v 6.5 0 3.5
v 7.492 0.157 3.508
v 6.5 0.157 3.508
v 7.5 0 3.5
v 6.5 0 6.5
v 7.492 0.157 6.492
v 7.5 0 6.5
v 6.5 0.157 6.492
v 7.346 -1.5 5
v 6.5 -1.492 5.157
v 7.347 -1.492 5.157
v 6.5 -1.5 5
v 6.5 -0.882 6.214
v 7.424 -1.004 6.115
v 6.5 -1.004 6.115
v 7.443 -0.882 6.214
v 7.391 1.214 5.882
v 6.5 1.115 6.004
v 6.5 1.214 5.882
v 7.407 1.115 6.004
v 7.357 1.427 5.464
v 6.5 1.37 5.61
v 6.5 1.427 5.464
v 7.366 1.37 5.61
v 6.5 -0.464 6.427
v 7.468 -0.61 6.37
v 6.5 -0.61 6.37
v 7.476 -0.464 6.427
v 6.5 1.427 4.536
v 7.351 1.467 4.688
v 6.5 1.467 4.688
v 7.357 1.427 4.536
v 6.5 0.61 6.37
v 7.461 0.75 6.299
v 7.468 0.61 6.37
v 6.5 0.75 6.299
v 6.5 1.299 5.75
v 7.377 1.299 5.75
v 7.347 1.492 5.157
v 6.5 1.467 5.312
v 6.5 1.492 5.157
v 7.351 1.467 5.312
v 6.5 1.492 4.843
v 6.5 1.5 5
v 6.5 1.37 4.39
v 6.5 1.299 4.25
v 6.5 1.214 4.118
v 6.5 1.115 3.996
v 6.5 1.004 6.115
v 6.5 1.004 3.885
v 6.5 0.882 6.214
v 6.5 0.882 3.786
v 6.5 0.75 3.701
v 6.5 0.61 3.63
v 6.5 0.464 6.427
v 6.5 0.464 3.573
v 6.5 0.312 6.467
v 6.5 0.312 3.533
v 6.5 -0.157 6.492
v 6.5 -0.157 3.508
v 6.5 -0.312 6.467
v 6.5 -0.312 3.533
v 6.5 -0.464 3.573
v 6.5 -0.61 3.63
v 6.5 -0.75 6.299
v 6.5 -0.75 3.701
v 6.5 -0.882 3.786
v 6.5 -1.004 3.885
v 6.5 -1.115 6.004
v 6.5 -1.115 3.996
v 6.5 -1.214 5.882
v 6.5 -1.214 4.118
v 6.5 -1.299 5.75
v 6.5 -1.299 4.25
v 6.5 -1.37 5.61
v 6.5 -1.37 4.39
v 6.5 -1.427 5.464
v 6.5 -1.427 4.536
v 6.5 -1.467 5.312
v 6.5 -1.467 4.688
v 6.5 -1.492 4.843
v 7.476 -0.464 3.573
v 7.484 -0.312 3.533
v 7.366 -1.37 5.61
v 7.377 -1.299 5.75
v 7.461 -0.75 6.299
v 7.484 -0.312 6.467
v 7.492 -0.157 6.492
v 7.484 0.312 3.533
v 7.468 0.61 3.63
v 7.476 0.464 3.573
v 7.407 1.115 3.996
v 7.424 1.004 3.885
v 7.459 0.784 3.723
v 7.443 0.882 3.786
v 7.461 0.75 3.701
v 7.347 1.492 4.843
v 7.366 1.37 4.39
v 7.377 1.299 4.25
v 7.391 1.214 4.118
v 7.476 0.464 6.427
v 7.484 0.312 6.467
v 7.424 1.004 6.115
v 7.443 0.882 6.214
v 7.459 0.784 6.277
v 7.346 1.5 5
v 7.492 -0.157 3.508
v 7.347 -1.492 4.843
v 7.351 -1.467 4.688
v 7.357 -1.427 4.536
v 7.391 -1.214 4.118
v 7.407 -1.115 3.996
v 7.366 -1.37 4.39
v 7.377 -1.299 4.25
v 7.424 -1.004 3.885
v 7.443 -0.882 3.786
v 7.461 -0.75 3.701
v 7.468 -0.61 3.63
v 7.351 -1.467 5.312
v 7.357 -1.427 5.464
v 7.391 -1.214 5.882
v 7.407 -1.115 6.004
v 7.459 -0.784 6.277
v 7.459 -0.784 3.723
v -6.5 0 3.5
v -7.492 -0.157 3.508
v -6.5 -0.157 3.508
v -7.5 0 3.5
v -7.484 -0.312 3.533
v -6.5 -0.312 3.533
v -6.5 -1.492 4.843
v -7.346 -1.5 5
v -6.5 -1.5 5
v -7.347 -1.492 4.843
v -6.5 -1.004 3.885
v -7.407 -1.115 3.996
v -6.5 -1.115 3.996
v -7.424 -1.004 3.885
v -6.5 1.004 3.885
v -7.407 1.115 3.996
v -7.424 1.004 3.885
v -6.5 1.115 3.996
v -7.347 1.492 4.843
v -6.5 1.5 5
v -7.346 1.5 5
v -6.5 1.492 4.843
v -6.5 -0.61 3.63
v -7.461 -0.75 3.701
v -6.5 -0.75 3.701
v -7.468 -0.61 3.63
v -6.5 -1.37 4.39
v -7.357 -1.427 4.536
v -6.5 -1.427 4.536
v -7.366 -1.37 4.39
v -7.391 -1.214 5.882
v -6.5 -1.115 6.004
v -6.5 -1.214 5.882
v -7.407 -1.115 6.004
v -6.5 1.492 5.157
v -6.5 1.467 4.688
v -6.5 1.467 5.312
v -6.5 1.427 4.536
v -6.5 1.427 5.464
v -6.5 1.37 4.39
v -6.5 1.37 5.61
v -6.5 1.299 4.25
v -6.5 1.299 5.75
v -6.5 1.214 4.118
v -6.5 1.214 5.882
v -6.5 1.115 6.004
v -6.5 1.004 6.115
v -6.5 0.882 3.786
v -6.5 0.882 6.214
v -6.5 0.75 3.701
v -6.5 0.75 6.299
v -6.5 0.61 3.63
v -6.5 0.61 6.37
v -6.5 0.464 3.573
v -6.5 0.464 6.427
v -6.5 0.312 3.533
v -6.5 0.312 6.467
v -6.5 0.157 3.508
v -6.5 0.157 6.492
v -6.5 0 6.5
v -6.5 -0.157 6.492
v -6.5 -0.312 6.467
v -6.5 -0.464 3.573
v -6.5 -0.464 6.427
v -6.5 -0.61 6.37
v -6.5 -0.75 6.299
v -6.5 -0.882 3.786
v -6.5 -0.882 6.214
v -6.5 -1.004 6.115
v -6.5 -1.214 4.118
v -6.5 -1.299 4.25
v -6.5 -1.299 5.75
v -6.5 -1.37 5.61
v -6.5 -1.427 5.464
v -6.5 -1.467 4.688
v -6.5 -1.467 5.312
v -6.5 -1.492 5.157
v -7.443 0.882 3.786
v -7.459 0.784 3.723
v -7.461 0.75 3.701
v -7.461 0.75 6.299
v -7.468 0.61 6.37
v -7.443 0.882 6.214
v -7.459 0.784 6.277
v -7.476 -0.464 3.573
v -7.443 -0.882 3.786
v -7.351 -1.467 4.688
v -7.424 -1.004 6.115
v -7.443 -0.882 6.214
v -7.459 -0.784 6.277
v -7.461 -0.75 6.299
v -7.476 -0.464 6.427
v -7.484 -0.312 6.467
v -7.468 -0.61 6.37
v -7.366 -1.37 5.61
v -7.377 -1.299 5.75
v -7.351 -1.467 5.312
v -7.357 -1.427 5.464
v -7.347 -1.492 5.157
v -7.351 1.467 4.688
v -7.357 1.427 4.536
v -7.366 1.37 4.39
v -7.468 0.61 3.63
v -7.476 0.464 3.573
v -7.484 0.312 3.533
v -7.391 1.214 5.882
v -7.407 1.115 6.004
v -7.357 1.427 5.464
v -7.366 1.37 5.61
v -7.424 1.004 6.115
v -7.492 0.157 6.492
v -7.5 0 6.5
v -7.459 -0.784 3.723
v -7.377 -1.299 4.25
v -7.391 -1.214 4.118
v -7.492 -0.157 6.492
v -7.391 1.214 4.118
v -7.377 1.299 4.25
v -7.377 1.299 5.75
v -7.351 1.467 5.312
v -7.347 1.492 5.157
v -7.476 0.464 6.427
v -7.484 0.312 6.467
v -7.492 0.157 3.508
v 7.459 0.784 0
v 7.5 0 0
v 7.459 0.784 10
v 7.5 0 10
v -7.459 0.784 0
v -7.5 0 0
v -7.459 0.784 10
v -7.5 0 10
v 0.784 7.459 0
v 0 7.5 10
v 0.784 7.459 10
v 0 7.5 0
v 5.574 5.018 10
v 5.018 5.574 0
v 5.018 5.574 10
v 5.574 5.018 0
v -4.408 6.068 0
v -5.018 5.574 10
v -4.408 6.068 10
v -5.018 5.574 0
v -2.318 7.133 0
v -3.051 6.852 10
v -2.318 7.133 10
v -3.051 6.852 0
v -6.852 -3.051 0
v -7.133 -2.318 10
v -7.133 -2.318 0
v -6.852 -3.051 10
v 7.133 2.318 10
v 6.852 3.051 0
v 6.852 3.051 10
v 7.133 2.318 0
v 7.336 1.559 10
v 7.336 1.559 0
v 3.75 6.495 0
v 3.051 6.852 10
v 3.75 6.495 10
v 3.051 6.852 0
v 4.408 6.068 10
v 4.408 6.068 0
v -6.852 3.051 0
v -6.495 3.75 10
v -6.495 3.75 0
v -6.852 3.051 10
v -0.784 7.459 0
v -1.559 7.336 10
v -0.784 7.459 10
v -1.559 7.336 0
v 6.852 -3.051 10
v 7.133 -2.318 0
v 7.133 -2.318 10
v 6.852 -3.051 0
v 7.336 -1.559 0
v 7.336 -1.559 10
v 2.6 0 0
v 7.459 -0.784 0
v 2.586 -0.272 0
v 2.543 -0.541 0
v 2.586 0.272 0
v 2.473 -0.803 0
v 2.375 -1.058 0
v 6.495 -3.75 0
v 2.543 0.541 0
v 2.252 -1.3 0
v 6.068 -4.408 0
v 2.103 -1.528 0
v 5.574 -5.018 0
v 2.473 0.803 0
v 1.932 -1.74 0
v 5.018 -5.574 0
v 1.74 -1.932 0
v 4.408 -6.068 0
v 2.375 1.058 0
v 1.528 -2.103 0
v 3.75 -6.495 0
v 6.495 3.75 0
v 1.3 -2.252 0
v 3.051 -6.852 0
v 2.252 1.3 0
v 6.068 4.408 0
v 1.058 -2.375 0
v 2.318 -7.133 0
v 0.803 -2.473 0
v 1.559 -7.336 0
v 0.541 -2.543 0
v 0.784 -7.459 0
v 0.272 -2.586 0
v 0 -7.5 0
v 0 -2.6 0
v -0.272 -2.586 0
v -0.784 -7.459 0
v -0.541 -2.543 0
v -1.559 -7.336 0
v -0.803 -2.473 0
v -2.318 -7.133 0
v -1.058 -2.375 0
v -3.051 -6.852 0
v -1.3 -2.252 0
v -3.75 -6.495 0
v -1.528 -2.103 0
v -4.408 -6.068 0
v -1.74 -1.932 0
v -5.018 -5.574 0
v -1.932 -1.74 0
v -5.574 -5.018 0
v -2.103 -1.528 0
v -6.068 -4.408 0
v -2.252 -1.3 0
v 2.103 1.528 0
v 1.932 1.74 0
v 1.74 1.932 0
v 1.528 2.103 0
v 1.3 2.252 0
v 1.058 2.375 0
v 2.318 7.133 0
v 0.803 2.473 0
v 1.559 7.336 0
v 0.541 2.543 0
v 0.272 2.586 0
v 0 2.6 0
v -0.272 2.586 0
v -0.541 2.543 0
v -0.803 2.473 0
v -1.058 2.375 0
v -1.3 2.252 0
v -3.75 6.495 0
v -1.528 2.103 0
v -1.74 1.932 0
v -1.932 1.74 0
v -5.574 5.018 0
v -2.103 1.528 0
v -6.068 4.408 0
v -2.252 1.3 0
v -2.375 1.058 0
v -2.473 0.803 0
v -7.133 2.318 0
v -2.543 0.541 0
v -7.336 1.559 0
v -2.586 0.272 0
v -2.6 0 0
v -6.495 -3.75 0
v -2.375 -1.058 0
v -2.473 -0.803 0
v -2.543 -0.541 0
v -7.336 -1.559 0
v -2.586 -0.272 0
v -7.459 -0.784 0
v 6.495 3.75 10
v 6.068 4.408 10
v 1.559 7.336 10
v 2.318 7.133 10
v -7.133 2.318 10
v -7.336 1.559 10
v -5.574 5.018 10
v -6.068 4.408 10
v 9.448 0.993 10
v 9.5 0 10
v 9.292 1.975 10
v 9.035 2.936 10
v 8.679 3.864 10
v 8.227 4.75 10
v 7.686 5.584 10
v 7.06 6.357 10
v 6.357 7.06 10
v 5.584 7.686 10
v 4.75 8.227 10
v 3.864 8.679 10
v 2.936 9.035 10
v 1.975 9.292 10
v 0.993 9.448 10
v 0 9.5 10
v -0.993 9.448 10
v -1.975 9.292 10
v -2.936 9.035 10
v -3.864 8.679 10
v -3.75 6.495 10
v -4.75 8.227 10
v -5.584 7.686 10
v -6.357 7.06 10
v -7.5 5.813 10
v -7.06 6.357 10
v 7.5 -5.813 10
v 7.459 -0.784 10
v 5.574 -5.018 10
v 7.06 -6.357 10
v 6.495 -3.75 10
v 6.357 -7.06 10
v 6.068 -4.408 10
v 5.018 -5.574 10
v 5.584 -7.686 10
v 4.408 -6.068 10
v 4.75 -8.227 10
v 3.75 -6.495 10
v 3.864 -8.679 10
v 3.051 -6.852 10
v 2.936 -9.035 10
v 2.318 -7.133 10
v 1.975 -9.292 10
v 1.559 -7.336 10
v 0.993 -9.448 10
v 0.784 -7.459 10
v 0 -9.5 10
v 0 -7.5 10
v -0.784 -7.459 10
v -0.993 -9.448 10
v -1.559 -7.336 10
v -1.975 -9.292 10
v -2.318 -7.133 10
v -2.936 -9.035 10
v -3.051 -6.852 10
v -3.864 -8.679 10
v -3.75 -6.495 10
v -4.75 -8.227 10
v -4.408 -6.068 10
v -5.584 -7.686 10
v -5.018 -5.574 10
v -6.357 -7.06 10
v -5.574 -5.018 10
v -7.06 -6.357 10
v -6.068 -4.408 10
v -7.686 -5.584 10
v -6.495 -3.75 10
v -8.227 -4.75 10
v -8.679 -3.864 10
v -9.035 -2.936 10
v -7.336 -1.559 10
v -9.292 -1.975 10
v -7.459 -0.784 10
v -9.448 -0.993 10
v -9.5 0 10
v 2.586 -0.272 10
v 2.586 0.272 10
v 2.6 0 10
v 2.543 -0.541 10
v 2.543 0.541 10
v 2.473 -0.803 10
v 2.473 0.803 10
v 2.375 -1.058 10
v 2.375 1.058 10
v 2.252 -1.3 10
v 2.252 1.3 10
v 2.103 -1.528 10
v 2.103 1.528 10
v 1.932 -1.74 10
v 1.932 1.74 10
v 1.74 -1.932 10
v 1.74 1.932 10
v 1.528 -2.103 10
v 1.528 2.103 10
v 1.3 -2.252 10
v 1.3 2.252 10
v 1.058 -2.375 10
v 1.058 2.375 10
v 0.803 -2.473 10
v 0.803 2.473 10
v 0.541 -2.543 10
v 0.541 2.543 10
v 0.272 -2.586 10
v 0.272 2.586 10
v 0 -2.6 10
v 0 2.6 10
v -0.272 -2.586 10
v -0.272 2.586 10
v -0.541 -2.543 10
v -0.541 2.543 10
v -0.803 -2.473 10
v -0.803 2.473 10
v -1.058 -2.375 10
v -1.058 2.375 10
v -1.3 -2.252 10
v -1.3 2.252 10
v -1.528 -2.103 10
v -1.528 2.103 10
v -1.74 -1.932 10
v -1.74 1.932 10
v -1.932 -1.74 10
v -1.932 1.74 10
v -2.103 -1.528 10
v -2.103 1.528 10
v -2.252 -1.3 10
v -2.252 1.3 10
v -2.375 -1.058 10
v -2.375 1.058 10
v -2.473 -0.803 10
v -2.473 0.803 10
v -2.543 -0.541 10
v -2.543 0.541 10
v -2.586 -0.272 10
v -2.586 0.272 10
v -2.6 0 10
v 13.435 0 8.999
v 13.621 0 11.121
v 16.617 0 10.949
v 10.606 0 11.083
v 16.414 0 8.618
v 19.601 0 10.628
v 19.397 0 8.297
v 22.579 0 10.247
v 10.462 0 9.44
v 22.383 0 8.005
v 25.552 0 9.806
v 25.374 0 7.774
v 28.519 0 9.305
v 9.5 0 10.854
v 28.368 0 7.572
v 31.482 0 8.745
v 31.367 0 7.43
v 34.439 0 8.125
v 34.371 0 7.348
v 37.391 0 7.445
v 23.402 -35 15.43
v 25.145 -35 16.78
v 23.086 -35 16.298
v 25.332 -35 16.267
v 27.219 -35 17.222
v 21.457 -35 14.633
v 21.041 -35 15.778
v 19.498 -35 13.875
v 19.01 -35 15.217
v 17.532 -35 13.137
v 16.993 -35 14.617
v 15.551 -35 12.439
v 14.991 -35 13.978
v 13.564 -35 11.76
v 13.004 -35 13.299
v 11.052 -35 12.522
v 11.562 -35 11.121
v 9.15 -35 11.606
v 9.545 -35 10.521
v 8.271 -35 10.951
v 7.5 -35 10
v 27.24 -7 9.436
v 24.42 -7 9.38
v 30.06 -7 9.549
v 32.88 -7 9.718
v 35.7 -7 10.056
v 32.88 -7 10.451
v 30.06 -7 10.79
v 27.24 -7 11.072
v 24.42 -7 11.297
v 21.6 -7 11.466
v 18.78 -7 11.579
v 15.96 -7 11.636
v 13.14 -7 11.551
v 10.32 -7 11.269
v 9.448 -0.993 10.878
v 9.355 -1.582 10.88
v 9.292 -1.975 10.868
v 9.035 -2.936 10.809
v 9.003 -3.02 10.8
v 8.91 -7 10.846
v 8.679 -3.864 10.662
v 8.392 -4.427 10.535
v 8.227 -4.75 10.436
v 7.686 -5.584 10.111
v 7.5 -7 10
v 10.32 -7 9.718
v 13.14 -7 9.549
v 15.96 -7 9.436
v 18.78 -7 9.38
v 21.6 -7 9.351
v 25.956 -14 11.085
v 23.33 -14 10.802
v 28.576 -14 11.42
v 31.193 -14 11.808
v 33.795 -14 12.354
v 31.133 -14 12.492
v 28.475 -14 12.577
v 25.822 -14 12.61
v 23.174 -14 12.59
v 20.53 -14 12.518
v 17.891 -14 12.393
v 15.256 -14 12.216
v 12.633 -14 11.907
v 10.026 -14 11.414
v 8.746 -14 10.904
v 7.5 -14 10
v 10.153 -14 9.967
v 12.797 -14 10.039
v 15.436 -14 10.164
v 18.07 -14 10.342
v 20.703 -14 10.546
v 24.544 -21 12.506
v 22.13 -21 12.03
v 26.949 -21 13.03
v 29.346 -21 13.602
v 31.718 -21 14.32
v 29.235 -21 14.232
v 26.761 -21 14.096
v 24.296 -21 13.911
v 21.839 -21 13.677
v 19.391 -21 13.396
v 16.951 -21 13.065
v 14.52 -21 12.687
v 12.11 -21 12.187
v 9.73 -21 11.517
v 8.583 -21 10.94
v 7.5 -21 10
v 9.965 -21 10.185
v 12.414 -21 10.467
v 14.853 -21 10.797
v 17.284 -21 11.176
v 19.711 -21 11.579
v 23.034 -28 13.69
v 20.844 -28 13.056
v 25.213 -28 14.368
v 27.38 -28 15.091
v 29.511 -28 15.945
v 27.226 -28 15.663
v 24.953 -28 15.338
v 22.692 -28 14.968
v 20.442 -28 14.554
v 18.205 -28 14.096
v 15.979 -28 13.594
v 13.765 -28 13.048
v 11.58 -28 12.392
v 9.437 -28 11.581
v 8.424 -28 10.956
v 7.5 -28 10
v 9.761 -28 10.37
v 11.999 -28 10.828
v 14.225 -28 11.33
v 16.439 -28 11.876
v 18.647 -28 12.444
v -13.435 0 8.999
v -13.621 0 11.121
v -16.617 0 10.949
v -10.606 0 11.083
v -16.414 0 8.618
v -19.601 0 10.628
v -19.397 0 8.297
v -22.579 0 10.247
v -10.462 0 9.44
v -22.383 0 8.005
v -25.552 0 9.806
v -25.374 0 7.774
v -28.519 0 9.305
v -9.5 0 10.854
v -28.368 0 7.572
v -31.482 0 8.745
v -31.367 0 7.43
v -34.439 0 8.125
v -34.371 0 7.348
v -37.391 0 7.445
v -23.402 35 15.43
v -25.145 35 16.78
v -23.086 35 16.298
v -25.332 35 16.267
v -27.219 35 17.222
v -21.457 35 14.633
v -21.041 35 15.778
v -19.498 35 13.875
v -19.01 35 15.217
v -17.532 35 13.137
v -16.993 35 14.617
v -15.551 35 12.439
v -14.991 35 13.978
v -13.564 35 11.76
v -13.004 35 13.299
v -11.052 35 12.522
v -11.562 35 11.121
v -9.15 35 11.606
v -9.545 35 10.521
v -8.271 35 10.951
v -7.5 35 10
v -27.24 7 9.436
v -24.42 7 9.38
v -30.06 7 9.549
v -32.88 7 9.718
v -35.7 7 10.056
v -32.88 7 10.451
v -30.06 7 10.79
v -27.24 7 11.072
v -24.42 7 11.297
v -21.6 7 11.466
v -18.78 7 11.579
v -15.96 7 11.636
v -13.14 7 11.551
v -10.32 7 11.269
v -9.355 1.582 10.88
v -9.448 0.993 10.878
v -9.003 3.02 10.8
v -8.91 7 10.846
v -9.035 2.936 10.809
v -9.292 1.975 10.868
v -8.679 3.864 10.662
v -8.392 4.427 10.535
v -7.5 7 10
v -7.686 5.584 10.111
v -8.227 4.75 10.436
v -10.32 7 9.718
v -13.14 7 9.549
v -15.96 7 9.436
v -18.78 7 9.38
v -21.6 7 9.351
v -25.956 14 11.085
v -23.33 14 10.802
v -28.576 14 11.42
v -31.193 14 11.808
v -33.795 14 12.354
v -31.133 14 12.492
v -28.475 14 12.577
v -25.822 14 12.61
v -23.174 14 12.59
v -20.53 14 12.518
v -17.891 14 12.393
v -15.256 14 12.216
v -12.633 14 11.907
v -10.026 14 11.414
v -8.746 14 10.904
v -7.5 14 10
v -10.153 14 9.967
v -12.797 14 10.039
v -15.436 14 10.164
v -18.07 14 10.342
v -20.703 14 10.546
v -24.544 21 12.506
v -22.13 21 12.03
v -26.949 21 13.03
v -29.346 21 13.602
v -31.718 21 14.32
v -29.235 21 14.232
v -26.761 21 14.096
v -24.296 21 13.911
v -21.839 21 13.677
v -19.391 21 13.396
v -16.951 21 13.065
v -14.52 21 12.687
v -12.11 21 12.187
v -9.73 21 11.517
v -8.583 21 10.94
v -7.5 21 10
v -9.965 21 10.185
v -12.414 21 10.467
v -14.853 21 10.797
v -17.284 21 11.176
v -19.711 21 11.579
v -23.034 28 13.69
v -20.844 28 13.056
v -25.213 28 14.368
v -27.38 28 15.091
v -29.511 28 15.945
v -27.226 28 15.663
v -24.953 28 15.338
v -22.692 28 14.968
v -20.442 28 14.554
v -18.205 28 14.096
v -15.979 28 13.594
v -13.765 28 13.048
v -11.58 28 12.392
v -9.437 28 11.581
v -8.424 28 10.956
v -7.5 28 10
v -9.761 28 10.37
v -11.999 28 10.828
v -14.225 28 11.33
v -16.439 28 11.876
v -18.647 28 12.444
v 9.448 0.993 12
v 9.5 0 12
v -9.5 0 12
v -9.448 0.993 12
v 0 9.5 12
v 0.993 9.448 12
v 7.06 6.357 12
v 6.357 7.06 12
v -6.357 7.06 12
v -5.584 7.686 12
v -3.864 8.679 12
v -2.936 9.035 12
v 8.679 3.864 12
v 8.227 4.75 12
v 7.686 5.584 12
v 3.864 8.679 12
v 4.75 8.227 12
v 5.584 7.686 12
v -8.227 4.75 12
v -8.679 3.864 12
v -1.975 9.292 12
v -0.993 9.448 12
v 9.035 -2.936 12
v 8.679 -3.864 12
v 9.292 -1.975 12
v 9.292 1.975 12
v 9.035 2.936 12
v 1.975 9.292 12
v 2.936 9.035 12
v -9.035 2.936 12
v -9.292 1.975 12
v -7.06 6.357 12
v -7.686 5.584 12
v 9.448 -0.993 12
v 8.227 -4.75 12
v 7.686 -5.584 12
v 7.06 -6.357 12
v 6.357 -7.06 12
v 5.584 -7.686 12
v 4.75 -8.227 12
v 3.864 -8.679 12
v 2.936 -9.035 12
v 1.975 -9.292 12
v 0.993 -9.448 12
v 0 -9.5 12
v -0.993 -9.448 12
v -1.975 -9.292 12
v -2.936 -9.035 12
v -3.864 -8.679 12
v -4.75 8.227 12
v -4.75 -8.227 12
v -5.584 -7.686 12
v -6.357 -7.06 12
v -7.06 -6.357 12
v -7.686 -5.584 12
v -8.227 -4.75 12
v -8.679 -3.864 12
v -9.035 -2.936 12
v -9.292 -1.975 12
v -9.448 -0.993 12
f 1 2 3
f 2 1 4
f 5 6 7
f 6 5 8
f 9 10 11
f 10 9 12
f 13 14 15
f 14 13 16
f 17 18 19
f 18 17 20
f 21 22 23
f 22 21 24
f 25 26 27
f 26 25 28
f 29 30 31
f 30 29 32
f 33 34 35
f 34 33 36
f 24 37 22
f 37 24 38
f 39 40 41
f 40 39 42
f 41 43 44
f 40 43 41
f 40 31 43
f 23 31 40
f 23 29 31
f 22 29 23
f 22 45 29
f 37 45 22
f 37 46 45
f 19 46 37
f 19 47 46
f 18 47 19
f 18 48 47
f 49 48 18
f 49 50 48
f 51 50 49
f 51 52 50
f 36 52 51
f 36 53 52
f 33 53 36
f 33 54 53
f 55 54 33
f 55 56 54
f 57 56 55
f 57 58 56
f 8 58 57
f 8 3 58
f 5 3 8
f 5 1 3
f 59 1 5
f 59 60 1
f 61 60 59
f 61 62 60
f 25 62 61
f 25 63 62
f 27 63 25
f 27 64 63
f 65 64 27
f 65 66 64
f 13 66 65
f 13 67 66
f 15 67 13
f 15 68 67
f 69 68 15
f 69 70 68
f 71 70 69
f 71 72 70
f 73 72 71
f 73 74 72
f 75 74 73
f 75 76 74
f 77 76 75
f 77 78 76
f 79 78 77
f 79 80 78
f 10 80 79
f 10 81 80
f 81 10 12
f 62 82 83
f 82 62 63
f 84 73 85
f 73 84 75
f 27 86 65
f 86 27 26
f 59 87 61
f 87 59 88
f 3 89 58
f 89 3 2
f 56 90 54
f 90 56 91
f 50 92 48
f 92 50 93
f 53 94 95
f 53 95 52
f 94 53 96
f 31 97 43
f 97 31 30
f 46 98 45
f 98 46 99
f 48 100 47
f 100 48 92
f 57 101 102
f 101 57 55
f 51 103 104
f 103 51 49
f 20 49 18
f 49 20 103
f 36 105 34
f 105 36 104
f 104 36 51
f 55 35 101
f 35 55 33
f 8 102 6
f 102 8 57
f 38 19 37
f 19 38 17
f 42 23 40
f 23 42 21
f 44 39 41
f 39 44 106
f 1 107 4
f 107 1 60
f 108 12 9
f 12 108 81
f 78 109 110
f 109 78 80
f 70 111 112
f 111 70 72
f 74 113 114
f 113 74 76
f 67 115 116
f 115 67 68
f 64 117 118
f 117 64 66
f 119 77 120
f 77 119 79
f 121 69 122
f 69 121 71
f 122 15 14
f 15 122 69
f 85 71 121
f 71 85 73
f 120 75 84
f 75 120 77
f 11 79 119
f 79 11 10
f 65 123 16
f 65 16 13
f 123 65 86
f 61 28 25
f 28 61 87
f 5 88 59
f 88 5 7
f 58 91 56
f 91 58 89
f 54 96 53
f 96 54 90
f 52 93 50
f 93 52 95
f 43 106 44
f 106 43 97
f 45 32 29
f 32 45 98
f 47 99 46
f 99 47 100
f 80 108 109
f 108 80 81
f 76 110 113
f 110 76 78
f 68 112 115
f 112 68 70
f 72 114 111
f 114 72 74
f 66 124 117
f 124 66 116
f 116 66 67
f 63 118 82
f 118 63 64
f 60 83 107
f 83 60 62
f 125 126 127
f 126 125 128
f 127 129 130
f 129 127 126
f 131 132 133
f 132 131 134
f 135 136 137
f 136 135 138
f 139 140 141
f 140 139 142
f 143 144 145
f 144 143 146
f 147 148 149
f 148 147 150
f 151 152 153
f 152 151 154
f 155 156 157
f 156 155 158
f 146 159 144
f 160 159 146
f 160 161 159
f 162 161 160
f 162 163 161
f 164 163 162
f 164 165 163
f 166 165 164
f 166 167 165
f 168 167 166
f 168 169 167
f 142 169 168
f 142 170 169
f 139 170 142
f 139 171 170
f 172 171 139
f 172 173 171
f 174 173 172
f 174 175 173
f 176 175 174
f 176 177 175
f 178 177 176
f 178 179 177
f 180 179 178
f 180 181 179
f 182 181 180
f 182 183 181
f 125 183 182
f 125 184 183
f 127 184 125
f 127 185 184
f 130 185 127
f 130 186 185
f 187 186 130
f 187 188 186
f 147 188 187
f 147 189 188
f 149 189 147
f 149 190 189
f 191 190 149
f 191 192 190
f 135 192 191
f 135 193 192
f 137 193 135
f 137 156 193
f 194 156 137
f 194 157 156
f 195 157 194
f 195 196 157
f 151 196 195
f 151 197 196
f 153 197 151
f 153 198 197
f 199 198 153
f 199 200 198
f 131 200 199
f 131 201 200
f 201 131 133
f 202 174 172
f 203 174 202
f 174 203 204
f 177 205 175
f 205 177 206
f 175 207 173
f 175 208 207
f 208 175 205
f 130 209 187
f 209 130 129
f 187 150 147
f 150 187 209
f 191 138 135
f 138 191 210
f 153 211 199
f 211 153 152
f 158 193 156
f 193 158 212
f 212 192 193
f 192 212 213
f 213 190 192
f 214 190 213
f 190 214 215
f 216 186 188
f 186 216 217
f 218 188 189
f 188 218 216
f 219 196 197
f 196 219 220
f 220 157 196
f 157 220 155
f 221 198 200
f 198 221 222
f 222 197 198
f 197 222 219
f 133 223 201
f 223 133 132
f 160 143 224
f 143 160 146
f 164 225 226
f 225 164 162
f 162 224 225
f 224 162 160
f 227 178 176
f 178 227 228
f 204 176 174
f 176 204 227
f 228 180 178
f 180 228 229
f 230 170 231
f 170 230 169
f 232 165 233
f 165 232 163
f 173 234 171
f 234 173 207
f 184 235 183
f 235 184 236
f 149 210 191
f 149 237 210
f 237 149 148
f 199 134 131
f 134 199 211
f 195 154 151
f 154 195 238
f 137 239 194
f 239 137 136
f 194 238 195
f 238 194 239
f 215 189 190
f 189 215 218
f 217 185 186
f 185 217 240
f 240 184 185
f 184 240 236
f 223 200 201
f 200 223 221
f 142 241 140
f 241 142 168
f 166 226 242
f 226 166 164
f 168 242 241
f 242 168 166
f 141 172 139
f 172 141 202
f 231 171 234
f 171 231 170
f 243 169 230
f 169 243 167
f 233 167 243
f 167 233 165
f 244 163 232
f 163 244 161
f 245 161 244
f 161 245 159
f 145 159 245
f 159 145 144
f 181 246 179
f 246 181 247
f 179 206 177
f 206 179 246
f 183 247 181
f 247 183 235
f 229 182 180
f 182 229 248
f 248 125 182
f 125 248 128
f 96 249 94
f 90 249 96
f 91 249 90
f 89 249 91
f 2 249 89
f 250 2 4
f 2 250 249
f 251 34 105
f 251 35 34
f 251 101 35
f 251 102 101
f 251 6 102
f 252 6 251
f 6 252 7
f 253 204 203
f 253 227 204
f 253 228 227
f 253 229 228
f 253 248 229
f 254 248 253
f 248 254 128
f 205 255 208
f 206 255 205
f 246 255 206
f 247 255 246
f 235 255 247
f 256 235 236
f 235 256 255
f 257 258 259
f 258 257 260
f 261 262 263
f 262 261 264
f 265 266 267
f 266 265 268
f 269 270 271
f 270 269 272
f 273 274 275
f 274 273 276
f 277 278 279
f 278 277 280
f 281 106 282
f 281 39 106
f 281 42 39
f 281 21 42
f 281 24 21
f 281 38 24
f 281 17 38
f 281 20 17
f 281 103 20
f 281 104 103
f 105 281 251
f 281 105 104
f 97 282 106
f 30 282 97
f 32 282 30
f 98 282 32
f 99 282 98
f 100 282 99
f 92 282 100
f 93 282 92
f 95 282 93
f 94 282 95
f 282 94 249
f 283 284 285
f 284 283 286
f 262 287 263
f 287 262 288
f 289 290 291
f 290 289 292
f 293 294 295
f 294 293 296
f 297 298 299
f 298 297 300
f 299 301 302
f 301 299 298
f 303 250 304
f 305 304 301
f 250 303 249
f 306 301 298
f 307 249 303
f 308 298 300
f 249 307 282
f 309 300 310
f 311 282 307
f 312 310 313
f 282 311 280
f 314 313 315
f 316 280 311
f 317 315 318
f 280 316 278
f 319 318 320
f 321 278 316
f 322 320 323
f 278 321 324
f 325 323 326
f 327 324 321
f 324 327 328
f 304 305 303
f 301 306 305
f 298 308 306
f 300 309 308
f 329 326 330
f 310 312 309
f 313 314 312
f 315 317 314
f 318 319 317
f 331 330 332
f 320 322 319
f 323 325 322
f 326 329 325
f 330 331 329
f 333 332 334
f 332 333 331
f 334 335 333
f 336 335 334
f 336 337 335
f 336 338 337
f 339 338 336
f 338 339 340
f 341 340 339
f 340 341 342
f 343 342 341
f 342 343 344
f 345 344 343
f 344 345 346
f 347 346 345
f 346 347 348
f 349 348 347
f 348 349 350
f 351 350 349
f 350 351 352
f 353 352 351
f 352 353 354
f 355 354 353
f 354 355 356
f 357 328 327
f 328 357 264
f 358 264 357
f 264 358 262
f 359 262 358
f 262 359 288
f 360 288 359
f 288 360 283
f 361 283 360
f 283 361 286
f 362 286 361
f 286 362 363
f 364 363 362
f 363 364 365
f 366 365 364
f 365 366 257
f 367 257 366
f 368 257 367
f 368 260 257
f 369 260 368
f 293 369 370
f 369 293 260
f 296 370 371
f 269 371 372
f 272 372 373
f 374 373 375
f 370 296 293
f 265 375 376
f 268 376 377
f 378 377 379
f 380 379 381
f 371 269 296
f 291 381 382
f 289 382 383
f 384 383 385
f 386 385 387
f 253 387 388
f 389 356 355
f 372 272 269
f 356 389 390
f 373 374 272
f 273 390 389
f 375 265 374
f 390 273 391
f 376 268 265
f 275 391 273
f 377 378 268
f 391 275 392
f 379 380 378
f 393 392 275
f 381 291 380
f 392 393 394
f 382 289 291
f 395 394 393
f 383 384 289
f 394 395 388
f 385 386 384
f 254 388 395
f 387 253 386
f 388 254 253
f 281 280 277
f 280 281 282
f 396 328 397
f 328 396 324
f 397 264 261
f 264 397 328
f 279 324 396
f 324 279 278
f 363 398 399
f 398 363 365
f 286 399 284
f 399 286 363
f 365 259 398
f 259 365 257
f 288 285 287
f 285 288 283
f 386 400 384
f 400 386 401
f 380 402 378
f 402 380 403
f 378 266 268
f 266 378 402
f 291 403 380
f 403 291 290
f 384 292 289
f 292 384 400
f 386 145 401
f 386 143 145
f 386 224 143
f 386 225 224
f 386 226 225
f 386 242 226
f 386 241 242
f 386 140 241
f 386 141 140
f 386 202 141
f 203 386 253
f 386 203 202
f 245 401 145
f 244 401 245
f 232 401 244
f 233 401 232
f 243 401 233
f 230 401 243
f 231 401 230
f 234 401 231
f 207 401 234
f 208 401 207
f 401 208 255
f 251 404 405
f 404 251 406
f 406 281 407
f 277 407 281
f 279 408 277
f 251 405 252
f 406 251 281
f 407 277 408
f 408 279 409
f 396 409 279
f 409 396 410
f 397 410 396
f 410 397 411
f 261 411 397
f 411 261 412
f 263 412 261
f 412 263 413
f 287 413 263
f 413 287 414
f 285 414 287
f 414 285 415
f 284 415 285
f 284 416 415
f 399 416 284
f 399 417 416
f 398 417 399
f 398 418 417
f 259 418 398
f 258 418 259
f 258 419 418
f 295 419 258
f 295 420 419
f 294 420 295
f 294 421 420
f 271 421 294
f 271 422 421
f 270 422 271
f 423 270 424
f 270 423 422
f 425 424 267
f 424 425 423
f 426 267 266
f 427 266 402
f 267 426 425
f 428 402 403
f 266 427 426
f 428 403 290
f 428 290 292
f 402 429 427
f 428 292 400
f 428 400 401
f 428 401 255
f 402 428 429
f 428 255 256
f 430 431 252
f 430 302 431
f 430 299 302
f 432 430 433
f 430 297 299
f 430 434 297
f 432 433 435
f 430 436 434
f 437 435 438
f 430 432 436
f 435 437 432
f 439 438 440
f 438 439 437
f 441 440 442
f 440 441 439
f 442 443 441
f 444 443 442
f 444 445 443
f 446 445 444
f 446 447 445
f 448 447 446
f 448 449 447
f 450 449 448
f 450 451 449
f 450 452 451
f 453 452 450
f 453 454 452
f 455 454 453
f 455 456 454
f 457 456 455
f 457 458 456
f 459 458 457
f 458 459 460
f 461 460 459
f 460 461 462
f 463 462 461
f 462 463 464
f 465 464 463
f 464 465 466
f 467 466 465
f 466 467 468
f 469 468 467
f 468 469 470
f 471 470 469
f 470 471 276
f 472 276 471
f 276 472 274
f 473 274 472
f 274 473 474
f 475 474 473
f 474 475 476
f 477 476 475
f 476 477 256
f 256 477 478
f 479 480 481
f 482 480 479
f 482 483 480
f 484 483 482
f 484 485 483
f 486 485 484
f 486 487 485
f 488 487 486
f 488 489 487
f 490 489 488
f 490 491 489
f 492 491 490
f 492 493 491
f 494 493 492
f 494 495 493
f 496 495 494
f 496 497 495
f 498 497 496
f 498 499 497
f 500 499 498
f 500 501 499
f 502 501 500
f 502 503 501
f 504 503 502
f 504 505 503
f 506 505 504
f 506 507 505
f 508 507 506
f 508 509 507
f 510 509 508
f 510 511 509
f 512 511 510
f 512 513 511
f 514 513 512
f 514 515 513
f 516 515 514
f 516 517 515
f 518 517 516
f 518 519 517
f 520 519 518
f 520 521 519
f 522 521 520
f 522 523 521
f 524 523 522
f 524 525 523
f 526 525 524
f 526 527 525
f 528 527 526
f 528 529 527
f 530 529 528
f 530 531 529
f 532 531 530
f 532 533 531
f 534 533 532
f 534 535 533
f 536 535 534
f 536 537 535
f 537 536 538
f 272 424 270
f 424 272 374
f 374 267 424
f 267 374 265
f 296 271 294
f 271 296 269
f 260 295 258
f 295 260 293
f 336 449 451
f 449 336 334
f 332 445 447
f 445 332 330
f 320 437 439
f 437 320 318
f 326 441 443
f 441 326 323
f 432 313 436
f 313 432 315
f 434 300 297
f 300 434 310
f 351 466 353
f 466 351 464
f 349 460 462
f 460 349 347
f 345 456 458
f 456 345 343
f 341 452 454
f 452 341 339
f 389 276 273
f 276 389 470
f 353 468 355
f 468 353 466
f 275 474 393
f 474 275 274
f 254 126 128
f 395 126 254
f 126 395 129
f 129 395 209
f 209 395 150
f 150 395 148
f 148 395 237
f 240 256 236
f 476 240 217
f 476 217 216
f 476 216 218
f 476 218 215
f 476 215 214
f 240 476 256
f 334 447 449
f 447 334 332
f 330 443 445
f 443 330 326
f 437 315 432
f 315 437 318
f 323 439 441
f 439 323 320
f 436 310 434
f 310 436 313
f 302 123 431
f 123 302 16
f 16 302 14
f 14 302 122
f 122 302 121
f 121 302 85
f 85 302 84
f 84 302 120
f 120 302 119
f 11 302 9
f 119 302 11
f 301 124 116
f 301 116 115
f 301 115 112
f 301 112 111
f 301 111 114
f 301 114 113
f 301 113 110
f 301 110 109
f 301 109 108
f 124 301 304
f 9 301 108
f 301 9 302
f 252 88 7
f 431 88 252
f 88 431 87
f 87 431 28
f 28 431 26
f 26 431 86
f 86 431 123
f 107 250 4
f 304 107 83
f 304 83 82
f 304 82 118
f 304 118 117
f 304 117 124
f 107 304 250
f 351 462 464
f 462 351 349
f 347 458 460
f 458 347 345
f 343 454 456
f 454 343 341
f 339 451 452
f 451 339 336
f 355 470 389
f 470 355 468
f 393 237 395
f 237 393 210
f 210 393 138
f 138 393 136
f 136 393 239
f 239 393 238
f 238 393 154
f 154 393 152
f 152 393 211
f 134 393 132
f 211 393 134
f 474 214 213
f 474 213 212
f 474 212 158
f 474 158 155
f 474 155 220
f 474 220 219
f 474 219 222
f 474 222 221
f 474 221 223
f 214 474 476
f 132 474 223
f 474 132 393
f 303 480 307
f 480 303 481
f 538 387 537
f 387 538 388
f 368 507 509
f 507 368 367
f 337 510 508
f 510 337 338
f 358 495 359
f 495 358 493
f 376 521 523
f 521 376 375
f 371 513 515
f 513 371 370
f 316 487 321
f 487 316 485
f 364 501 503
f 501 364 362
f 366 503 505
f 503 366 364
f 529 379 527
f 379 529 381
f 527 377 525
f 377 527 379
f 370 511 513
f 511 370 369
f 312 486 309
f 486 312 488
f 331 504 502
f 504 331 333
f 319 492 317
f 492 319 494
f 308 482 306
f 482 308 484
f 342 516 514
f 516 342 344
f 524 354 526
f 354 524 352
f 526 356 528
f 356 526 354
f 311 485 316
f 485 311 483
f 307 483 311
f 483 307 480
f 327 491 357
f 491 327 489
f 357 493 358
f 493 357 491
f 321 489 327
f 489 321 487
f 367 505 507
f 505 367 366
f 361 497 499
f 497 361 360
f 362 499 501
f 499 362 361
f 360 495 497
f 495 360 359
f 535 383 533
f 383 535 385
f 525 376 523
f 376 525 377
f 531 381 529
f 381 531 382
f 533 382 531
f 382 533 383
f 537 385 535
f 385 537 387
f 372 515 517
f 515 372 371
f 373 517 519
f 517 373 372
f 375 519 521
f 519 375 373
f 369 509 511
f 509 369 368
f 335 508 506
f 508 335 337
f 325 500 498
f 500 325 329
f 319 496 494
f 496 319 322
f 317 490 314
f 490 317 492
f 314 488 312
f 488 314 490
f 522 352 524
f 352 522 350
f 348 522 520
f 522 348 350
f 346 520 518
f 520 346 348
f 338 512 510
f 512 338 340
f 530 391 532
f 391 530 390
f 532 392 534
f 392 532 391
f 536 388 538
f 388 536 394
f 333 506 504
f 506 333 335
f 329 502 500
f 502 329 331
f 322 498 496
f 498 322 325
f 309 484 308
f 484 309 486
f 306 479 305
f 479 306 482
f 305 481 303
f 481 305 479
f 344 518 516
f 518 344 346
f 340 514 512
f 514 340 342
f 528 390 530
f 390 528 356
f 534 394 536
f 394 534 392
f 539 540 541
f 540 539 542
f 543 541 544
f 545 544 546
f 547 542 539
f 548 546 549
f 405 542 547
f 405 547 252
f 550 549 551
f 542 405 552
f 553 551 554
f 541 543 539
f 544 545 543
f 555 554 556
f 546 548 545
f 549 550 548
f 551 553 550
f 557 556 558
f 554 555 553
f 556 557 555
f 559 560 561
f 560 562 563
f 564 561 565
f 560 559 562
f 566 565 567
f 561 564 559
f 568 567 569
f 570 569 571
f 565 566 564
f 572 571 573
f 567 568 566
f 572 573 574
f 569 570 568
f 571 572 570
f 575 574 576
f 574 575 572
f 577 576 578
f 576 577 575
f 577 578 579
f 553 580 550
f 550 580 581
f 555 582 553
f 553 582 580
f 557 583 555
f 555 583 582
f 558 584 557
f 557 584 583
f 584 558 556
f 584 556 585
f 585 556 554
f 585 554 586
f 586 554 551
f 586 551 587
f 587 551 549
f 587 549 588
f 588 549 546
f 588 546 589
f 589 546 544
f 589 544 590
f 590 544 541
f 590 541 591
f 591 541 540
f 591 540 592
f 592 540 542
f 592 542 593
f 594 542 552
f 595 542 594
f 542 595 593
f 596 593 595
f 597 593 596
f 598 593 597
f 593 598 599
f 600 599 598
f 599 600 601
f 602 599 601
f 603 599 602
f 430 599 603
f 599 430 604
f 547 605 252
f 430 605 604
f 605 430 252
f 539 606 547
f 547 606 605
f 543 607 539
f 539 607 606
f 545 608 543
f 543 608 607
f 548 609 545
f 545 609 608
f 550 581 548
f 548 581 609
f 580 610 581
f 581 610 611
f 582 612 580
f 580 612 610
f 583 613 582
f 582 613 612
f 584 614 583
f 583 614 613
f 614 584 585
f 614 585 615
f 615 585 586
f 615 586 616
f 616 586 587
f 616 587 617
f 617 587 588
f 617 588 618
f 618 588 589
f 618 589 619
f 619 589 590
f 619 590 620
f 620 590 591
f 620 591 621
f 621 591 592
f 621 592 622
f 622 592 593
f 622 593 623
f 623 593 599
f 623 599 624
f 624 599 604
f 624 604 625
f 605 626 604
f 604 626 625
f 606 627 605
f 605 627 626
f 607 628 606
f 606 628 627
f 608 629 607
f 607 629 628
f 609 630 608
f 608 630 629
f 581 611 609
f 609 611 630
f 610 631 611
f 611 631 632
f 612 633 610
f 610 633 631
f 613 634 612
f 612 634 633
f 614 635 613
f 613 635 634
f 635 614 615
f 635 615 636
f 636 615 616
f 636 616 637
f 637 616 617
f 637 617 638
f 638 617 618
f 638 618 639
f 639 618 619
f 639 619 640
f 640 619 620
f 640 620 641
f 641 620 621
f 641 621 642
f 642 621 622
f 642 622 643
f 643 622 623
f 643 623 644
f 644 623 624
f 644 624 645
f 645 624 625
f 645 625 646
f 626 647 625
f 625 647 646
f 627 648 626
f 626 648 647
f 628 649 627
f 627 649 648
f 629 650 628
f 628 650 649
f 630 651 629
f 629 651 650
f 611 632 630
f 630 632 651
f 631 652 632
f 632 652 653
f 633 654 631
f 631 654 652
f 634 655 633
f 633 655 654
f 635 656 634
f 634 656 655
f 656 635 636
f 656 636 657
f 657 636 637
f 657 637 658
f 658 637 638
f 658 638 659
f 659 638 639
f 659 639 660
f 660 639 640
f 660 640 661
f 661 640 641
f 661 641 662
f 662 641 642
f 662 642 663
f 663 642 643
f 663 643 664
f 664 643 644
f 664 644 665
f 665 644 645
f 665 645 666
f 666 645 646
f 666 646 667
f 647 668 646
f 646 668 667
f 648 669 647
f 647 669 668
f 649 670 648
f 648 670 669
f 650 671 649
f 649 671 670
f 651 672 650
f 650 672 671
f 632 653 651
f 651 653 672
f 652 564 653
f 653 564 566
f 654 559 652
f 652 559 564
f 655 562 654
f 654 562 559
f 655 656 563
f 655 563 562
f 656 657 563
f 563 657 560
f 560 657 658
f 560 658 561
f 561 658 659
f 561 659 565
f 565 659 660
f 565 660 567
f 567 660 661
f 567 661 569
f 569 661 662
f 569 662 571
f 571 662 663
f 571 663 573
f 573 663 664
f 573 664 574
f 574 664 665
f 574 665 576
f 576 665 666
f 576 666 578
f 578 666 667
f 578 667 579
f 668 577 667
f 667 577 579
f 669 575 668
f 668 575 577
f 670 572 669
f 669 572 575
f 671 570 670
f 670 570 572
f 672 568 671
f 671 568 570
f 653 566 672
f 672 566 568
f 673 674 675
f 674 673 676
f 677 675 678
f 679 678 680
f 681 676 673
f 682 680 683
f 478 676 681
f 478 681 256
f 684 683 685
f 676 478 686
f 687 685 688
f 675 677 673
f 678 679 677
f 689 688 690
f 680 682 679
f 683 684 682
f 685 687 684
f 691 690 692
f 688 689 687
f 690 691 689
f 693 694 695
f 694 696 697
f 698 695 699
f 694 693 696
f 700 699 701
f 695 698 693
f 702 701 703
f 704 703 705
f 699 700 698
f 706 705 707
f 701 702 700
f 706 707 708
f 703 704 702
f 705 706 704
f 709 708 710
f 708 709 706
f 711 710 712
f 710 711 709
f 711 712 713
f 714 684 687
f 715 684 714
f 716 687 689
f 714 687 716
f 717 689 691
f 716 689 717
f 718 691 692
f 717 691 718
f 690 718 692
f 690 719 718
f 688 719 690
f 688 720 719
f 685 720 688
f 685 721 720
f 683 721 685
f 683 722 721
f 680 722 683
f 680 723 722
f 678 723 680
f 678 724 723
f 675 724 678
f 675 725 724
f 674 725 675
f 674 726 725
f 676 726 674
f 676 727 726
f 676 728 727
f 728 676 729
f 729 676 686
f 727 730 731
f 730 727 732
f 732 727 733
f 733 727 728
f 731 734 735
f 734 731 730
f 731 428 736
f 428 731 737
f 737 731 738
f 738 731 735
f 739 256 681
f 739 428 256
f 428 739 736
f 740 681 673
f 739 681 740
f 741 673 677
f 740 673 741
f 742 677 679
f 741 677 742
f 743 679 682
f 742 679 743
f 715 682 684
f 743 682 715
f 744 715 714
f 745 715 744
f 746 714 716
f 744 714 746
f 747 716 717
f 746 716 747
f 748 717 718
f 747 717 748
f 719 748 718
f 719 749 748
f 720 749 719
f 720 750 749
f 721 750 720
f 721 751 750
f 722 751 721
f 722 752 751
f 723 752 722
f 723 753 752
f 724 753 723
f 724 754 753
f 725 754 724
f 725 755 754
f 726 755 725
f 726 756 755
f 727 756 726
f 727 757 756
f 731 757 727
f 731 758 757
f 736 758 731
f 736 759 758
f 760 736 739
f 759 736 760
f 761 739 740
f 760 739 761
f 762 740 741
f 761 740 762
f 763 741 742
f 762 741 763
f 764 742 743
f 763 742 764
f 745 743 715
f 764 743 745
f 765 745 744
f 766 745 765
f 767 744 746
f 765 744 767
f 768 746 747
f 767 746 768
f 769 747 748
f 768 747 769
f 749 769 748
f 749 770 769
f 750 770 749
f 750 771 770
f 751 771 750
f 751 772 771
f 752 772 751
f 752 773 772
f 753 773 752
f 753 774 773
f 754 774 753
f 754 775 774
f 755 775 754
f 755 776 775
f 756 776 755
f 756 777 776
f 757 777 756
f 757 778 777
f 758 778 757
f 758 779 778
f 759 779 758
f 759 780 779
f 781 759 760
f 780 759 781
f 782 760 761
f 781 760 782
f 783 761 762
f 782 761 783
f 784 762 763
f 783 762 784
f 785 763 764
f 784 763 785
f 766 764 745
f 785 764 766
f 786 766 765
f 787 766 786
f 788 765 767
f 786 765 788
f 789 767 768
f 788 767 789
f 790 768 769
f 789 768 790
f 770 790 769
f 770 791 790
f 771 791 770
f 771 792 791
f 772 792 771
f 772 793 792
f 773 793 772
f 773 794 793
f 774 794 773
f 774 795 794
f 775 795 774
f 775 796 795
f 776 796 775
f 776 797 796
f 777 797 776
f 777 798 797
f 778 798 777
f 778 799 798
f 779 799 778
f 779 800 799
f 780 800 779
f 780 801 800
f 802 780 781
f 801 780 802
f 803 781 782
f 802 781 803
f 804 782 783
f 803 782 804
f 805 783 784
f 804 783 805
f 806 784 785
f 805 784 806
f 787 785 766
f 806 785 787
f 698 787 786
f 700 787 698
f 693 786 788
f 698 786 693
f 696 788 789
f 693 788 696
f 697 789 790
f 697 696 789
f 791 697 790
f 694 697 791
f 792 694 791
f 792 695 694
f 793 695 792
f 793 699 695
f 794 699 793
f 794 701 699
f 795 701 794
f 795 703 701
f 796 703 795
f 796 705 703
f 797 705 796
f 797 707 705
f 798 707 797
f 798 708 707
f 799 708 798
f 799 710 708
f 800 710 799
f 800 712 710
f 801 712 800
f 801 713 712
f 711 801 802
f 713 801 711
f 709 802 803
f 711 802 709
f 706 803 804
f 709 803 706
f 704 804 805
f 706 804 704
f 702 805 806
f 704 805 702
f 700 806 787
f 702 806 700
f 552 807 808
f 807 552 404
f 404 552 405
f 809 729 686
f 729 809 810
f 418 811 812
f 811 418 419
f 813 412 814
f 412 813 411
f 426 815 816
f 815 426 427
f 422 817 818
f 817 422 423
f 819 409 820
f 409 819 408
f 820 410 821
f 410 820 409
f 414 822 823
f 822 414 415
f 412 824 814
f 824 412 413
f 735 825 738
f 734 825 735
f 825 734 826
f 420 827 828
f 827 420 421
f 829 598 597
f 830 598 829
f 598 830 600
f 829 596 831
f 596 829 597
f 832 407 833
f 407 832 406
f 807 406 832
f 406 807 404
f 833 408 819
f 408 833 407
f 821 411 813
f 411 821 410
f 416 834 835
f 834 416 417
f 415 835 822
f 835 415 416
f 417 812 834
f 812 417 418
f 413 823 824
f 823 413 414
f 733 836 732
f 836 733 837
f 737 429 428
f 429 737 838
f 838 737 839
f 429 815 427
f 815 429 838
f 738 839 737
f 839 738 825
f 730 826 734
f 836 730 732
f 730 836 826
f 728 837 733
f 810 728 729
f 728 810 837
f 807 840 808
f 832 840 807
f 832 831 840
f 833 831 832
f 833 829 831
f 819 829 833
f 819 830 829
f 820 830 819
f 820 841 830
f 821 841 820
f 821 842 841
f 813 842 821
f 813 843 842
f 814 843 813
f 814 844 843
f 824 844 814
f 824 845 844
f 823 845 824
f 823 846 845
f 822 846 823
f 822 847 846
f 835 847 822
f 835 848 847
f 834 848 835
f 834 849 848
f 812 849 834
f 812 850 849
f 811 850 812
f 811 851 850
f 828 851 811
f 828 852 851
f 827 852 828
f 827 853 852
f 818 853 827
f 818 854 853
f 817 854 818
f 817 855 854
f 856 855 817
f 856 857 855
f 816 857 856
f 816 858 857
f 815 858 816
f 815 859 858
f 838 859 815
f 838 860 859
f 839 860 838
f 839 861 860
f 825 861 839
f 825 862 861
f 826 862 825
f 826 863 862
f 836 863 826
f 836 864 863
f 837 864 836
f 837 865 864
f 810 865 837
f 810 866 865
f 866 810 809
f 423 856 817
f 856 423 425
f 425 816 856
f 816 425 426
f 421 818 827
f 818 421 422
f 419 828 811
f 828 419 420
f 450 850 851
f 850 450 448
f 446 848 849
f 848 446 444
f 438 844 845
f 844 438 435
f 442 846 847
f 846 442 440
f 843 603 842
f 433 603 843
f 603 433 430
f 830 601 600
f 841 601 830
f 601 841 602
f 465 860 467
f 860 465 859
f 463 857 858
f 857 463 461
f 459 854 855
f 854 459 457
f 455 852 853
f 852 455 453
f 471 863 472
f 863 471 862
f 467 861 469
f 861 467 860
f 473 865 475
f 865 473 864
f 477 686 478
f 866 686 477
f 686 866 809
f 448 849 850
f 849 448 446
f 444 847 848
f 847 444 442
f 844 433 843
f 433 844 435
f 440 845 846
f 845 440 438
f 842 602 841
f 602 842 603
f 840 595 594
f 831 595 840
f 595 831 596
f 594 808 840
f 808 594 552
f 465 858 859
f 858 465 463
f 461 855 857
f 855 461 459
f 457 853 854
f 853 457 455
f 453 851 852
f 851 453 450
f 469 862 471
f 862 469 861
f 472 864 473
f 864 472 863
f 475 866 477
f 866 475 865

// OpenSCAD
/*
 * COMPLETE MOTOR + IMPELLER ASSEMBLY
 * For CFD fluid testing and visualization
 * 
 * This model includes:
 *   - Brushless motor (2204-2206 size)
 *   - Motor shaft (5mm)
 *   - Impeller hub
 *   - 3 impeller variants (bladeless, AI-blades, hybrid)
 *   - Mounting plate
 * 
 * Usage:
 *   - Render full assembly: F6
 *   - Export for CFD: Set EXPORT_MODE = "impeller_only"
 *   - Change design: Set IMPELLER_TYPE = "bladeless" | "bladed" | "hybrid"
 */

// ============================================================================
// CONFIGURATION PARAMETERS (AI-Optimizable)
// ============================================================================

// General Settings
$fn = 60;  // Resolution for CFD export (increase to 100 for final)

// Export Mode
EXPORT_MODE = "impeller_only";  // Options: "full_assembly", "impeller_only", "motor_only"

// Impeller Type
IMPELLER_TYPE = "bladed";  // Options: "bladeless", "bladed", "hybrid"

// Motor Specifications (2204-2206 brushless)
MOTOR_DIAMETER = 28;         // mm
MOTOR_HEIGHT = 25;           // mm
MOTOR_SHAFT_DIAMETER = 5;    // mm (standard)
MOTOR_SHAFT_LENGTH = 15;     // mm (extends above motor)
MOTOR_MOUNT_PATTERN = 16;    // mm (16x16 or 19x19 common)
MOTOR_SCREW_DIAMETER = 3;    // M3 screws

// Impeller Parameters - BLADELESS
BLADELESS_OUTER_DIAMETER = 90;    // mm
BLADELESS_AIR_GAP = 0.8;          // mm (optimize: 0.6-1.2)
BLADELESS_THROAT_RATIO = 0.72;    // (optimize: 0.65-0.80)
BLADELESS_EXPANSION_ANGLE = 18;   // degrees (optimize: 12-25)
BLADELESS_RING_THICKNESS = 3;     // mm (optimize: 2-4)
BLADELESS_HEIGHT = 24;            // mm

// Impeller Parameters - BLADED
BLADED_DIAMETER = 85;
BLADED_HUB_DIAMETER = 15;         // mm (optimize: 12-20)
BLADED_BLADE_COUNT = 2;
BLADED_ROOT_CHORD = 30;
BLADED_TIP_CHORD_RATIO = 0.7;    // (optimize: 0.6-0.8)
BLADED_BLADE_THICKNESS = 2;       // mm (optimize: 1.5-3)
BLADED_BLADE_TWIST = -25;
BLADED_ATTACK_ANGLE = -5;
BLADED_BLADE_HEIGHT = 12;         // mm (optimize: 10-15)

// Hub Parameters
HUB_DIAMETER = 15;
HUB_HEIGHT = 10;
HUB_SET_SCREW_DIAMETER = 3;  // M3 set screw

// Mounting Plate
PLATE_SIZE = 50;
PLATE_THICKNESS = 3;

// ============================================================================
// MOTOR MODEL
// ============================================================================

module brushless_motor_2204() {
    color("DarkSlateGray") {
        // Motor can (bell)
        difference() {
            cylinder(h=MOTOR_HEIGHT, d=MOTOR_DIAMETER);
            
            // Hollow inside (weight reduction visualization)
            translate([0, 0, -0.5])
                cylinder(h=MOTOR_HEIGHT - 5, d=MOTOR_DIAMETER - 4);
            
            // Mounting holes
            for(i = [0:3]) {
                rotate([0, 0, i * 90])
                    translate([MOTOR_MOUNT_PATTERN/2, 0, MOTOR_HEIGHT/2])
                        rotate([90, 0, 0])
                            cylinder(h=MOTOR_DIAMETER, d=MOTOR_SCREW_DIAMETER, center=true);
            }
        }
        
        // Motor base
        translate([0, 0, -3])
            cylinder(h=3, d=MOTOR_DIAMETER - 2);
    }
    
    // Motor shaft
    color("Silver")
        translate([0, 0, MOTOR_HEIGHT])
            cylinder(h=MOTOR_SHAFT_LENGTH, d=MOTOR_SHAFT_DIAMETER);
    
    // Shaft tip (for hub attachment)
    color("Silver")
        translate([0, 0, MOTOR_HEIGHT + MOTOR_SHAFT_LENGTH])
            cylinder(h=2, d=MOTOR_SHAFT_DIAMETER - 0.5);
}

// ============================================================================
// IMPELLER HUB
// ============================================================================

module impeller_hub() {
    color("Gray")
    difference() {
        // Hub body
        cylinder(h=HUB_HEIGHT, d=HUB_DIAMETER);
        
        // Shaft hole (5mm + 0.2mm clearance)
        translate([0, 0, -0.5])
            cylinder(h=HUB_HEIGHT + 1, d=MOTOR_SHAFT_DIAMETER + 0.2);
        
        // Set screw holes (2x for balance)
        for(i = [0:1]) {
            rotate([0, 0, i * 180])
                translate([HUB_DIAMETER/2 - 1, 0, HUB_HEIGHT/2])
                    rotate([0, 90, 0])
                        cylinder(h=5, d=HUB_SET_SCREW_DIAMETER);
        }
    }
}

// ============================================================================
// BLADELESS IMPELLER (Dyson-style)
// ============================================================================

module bladeless_impeller() {
    outer_r = BLADELESS_OUTER_DIAMETER / 2;
    throat_r = outer_r * BLADELESS_THROAT_RATIO;
    gap = BLADELESS_AIR_GAP;
    
    color("SkyBlue", 0.7)
    difference() {
        // Outer ring
        rotate_extrude()
            translate([outer_r - BLADELESS_RING_THICKNESS/2, BLADELESS_HEIGHT/2, 0])
                circle(d=BLADELESS_RING_THICKNESS + BLADELESS_HEIGHT);
        
        // Inner air gap (critical for Coanda effect)
        rotate_extrude()
            translate([outer_r - gap - BLADELESS_RING_THICKNESS/2, BLADELESS_HEIGHT/2, 0])
                circle(d=BLADELESS_RING_THICKNESS + BLADELESS_HEIGHT - 2*gap);
    }
    
    // Base plate (connects to hub)
    color("SkyBlue", 0.7)
    translate([0, 0, -2])
        difference() {
            cylinder(h=2, d=outer_r * 2);
            translate([0, 0, -0.5])
                cylinder(h=3, d=HUB_DIAMETER + 1);
        }
    
    // Air inlet (bell-shaped for smooth flow)
    color("SkyBlue", 0.7)
    translate([0, 0, -2]) {
        difference() {
            cylinder(h=15, d1=throat_r * 2, d2=outer_r * 1.8);
            translate([0, 0, -0.5])
                cylinder(h=16, d1=throat_r * 2 - 3, d2=outer_r * 1.8 - 3);
        }
    }
}

// ============================================================================
// AI-OPTIMIZED BLADED IMPELLER (NACA 2412 profile)
// ============================================================================

module naca_2412_blade(chord, height, twist_angle, attack_angle) {
    // Simplified NACA 2412 airfoil profile
    // Using parametric approximation for 3D printing
    
    color("LightSteelBlue", 0.8)
    linear_extrude(height=height, twist=twist_angle, scale=BLADED_TIP_CHORD_RATIO) {
        rotate([0, 0, attack_angle])
        polygon([
            // Upper surface (cambered)
            [0, 0],
            [chord * 0.05, chord * 0.03],
            [chord * 0.1, chord * 0.045],
            [chord * 0.2, chord * 0.055],
            [chord * 0.3, chord * 0.058],
            [chord * 0.4, chord * 0.056],
            [chord * 0.5, chord * 0.052],
            [chord * 0.6, chord * 0.046],
            [chord * 0.7, chord * 0.038],
            [chord * 0.8, chord * 0.028],
            [chord * 0.9, chord * 0.016],
            [chord * 1.0, chord * 0.002],
            // Lower surface (less cambered)
            [chord * 0.9, -chord * 0.010],
            [chord * 0.8, -chord * 0.016],
            [chord * 0.7, -chord * 0.020],
            [chord * 0.6, -chord * 0.022],
            [chord * 0.5, -chord * 0.023],
            [chord * 0.4, -chord * 0.022],
            [chord * 0.3, -chord * 0.020],
            [chord * 0.2, -chord * 0.016],
            [chord * 0.1, -chord * 0.010],
            [chord * 0.05, -chord * 0.005],
        ]);
    }
}

module bladed_impeller() {
    // Blades
    for(i = [0 : BLADED_BLADE_COUNT - 1]) {
        rotate([0, 0, i * (360 / BLADED_BLADE_COUNT)])
            translate([BLADED_HUB_DIAMETER/2, 0, 0])
                rotate([90, 0, 0])
                    naca_2412_blade(
                        BLADED_ROOT_CHORD, 
                        (BLADED_DIAMETER - BLADED_HUB_DIAMETER) / 2,
                        BLADED_BLADE_TWIST,
                        BLADED_ATTACK_ANGLE
                    );
    }
    
    // Hub disk (connects blades)
    color("LightSteelBlue", 0.8)
    cylinder(h=2, d=BLADED_HUB_DIAMETER + 4);
}

// ============================================================================
// HYBRID IMPELLER (Blades inside bladeless ring)
// ============================================================================

module hybrid_impeller() {
    // Outer bladeless ring
    bladeless_impeller();
    
    // Inner bladed impeller (scaled down to fit)
    scale([0.85, 0.85, 1])
        bladed_impeller();
}

// ============================================================================
// MOUNTING PLATE
// ============================================================================

module mounting_plate() {
    color("DimGray")
    difference() {
        // Base plate
        translate([-PLATE_SIZE/2, -PLATE_SIZE/2, 0])
            cube([PLATE_SIZE, PLATE_SIZE, PLATE_THICKNESS]);
        
        // Center hole for motor shaft
        translate([0, 0, -0.5])
            cylinder(h=PLATE_THICKNESS + 1, d=MOTOR_DIAMETER + 2);
        
        // Motor mounting holes
        for(i = [0:3]) {
            rotate([0, 0, i * 90])
                translate([MOTOR_MOUNT_PATTERN/2, 0, -0.5])
                    cylinder(h=PLATE_THICKNESS + 1, d=MOTOR_SCREW_DIAMETER);
        }
    }
}

// ============================================================================
// COMPLETE ASSEMBLY
// ============================================================================

module complete_assembly() {
    // Mounting plate (bottom)
    translate([0, 0, -PLATE_THICKNESS])
        mounting_plate();
    
    // Motor
    translate([0, 0, 0])
        brushless_motor_2204();
    
    // Hub (on shaft)
    translate([0, 0, MOTOR_HEIGHT + MOTOR_SHAFT_LENGTH - 2])
        impeller_hub();
    
    // Impeller (on hub)
    translate([0, 0, MOTOR_HEIGHT + MOTOR_SHAFT_LENGTH + HUB_HEIGHT]) {
        if (IMPELLER_TYPE == "bladeless") {
            bladeless_impeller();
        } else if (IMPELLER_TYPE == "bladed") {
            bladed_impeller();
        } else if (IMPELLER_TYPE == "hybrid") {
            hybrid_impeller();
        }
    }
}

// ============================================================================
// RENDER BASED ON EXPORT MODE
// ============================================================================

if (EXPORT_MODE == "full_assembly") {
    complete_assembly();
} 
else if (EXPORT_MODE == "impeller_only") {
    // For CFD testing - impeller + hub only
    impeller_hub();
    translate([0, 0, HUB_HEIGHT]) {
        if (IMPELLER_TYPE == "bladeless") {
            bladeless_impeller();
        } else if (IMPELLER_TYPE == "bladed") {
            bladed_impeller();
        } else if (IMPELLER_TYPE == "hybrid") {
            hybrid_impeller();
        }
    }
}
else if (EXPORT_MODE == "motor_only") {
    brushless_motor_2204();
}

// ============================================================================
// ANNOTATIONS FOR VISUALIZATION
// ============================================================================

// Uncomment to show dimensions
/*
color("Red", 0.3)
translate([BLADED_DIAMETER/2 + 10, 0, 20])
    text(str("Ø", BLADED_DIAMETER, "mm"), size=5, halign="left");

color("Green", 0.3)
translate([0, BLADED_DIAMETER/2 + 10, 20])
    text(str(BLADED_BLADE_COUNT, " blades"), size=5, halign="center");
*/

// ============================================================================
// EXPORT NOTES
// ============================================================================

/*
 * TO EXPORT FOR CFD TESTING:
 * 
 * 1. Set EXPORT_MODE = "impeller_only"
 * 2. Set IMPELLER_TYPE = "bladeless" (or "bladed" or "hybrid")
 * 3. Press F6 to render
 * 4. File → Export → Export as STL
 * 5. Use filename: impeller_bladeless_fn60.stl
 * 
 * FOR OPTIMIZATION:
 * - Modify parameters at top (marked with "optimize:")
 * - Re-render and export
 * - Upload to SimScale for CFD
 * - Compare results
 * 
 * RECOMMENDED CFD SETTINGS:
 * - Solver: k-omega SST
 * - RPM: 5000, 7000, 9000
 * - Mesh: 3-5M cells
 * - Boundary: Rotating zone on impeller
 */
